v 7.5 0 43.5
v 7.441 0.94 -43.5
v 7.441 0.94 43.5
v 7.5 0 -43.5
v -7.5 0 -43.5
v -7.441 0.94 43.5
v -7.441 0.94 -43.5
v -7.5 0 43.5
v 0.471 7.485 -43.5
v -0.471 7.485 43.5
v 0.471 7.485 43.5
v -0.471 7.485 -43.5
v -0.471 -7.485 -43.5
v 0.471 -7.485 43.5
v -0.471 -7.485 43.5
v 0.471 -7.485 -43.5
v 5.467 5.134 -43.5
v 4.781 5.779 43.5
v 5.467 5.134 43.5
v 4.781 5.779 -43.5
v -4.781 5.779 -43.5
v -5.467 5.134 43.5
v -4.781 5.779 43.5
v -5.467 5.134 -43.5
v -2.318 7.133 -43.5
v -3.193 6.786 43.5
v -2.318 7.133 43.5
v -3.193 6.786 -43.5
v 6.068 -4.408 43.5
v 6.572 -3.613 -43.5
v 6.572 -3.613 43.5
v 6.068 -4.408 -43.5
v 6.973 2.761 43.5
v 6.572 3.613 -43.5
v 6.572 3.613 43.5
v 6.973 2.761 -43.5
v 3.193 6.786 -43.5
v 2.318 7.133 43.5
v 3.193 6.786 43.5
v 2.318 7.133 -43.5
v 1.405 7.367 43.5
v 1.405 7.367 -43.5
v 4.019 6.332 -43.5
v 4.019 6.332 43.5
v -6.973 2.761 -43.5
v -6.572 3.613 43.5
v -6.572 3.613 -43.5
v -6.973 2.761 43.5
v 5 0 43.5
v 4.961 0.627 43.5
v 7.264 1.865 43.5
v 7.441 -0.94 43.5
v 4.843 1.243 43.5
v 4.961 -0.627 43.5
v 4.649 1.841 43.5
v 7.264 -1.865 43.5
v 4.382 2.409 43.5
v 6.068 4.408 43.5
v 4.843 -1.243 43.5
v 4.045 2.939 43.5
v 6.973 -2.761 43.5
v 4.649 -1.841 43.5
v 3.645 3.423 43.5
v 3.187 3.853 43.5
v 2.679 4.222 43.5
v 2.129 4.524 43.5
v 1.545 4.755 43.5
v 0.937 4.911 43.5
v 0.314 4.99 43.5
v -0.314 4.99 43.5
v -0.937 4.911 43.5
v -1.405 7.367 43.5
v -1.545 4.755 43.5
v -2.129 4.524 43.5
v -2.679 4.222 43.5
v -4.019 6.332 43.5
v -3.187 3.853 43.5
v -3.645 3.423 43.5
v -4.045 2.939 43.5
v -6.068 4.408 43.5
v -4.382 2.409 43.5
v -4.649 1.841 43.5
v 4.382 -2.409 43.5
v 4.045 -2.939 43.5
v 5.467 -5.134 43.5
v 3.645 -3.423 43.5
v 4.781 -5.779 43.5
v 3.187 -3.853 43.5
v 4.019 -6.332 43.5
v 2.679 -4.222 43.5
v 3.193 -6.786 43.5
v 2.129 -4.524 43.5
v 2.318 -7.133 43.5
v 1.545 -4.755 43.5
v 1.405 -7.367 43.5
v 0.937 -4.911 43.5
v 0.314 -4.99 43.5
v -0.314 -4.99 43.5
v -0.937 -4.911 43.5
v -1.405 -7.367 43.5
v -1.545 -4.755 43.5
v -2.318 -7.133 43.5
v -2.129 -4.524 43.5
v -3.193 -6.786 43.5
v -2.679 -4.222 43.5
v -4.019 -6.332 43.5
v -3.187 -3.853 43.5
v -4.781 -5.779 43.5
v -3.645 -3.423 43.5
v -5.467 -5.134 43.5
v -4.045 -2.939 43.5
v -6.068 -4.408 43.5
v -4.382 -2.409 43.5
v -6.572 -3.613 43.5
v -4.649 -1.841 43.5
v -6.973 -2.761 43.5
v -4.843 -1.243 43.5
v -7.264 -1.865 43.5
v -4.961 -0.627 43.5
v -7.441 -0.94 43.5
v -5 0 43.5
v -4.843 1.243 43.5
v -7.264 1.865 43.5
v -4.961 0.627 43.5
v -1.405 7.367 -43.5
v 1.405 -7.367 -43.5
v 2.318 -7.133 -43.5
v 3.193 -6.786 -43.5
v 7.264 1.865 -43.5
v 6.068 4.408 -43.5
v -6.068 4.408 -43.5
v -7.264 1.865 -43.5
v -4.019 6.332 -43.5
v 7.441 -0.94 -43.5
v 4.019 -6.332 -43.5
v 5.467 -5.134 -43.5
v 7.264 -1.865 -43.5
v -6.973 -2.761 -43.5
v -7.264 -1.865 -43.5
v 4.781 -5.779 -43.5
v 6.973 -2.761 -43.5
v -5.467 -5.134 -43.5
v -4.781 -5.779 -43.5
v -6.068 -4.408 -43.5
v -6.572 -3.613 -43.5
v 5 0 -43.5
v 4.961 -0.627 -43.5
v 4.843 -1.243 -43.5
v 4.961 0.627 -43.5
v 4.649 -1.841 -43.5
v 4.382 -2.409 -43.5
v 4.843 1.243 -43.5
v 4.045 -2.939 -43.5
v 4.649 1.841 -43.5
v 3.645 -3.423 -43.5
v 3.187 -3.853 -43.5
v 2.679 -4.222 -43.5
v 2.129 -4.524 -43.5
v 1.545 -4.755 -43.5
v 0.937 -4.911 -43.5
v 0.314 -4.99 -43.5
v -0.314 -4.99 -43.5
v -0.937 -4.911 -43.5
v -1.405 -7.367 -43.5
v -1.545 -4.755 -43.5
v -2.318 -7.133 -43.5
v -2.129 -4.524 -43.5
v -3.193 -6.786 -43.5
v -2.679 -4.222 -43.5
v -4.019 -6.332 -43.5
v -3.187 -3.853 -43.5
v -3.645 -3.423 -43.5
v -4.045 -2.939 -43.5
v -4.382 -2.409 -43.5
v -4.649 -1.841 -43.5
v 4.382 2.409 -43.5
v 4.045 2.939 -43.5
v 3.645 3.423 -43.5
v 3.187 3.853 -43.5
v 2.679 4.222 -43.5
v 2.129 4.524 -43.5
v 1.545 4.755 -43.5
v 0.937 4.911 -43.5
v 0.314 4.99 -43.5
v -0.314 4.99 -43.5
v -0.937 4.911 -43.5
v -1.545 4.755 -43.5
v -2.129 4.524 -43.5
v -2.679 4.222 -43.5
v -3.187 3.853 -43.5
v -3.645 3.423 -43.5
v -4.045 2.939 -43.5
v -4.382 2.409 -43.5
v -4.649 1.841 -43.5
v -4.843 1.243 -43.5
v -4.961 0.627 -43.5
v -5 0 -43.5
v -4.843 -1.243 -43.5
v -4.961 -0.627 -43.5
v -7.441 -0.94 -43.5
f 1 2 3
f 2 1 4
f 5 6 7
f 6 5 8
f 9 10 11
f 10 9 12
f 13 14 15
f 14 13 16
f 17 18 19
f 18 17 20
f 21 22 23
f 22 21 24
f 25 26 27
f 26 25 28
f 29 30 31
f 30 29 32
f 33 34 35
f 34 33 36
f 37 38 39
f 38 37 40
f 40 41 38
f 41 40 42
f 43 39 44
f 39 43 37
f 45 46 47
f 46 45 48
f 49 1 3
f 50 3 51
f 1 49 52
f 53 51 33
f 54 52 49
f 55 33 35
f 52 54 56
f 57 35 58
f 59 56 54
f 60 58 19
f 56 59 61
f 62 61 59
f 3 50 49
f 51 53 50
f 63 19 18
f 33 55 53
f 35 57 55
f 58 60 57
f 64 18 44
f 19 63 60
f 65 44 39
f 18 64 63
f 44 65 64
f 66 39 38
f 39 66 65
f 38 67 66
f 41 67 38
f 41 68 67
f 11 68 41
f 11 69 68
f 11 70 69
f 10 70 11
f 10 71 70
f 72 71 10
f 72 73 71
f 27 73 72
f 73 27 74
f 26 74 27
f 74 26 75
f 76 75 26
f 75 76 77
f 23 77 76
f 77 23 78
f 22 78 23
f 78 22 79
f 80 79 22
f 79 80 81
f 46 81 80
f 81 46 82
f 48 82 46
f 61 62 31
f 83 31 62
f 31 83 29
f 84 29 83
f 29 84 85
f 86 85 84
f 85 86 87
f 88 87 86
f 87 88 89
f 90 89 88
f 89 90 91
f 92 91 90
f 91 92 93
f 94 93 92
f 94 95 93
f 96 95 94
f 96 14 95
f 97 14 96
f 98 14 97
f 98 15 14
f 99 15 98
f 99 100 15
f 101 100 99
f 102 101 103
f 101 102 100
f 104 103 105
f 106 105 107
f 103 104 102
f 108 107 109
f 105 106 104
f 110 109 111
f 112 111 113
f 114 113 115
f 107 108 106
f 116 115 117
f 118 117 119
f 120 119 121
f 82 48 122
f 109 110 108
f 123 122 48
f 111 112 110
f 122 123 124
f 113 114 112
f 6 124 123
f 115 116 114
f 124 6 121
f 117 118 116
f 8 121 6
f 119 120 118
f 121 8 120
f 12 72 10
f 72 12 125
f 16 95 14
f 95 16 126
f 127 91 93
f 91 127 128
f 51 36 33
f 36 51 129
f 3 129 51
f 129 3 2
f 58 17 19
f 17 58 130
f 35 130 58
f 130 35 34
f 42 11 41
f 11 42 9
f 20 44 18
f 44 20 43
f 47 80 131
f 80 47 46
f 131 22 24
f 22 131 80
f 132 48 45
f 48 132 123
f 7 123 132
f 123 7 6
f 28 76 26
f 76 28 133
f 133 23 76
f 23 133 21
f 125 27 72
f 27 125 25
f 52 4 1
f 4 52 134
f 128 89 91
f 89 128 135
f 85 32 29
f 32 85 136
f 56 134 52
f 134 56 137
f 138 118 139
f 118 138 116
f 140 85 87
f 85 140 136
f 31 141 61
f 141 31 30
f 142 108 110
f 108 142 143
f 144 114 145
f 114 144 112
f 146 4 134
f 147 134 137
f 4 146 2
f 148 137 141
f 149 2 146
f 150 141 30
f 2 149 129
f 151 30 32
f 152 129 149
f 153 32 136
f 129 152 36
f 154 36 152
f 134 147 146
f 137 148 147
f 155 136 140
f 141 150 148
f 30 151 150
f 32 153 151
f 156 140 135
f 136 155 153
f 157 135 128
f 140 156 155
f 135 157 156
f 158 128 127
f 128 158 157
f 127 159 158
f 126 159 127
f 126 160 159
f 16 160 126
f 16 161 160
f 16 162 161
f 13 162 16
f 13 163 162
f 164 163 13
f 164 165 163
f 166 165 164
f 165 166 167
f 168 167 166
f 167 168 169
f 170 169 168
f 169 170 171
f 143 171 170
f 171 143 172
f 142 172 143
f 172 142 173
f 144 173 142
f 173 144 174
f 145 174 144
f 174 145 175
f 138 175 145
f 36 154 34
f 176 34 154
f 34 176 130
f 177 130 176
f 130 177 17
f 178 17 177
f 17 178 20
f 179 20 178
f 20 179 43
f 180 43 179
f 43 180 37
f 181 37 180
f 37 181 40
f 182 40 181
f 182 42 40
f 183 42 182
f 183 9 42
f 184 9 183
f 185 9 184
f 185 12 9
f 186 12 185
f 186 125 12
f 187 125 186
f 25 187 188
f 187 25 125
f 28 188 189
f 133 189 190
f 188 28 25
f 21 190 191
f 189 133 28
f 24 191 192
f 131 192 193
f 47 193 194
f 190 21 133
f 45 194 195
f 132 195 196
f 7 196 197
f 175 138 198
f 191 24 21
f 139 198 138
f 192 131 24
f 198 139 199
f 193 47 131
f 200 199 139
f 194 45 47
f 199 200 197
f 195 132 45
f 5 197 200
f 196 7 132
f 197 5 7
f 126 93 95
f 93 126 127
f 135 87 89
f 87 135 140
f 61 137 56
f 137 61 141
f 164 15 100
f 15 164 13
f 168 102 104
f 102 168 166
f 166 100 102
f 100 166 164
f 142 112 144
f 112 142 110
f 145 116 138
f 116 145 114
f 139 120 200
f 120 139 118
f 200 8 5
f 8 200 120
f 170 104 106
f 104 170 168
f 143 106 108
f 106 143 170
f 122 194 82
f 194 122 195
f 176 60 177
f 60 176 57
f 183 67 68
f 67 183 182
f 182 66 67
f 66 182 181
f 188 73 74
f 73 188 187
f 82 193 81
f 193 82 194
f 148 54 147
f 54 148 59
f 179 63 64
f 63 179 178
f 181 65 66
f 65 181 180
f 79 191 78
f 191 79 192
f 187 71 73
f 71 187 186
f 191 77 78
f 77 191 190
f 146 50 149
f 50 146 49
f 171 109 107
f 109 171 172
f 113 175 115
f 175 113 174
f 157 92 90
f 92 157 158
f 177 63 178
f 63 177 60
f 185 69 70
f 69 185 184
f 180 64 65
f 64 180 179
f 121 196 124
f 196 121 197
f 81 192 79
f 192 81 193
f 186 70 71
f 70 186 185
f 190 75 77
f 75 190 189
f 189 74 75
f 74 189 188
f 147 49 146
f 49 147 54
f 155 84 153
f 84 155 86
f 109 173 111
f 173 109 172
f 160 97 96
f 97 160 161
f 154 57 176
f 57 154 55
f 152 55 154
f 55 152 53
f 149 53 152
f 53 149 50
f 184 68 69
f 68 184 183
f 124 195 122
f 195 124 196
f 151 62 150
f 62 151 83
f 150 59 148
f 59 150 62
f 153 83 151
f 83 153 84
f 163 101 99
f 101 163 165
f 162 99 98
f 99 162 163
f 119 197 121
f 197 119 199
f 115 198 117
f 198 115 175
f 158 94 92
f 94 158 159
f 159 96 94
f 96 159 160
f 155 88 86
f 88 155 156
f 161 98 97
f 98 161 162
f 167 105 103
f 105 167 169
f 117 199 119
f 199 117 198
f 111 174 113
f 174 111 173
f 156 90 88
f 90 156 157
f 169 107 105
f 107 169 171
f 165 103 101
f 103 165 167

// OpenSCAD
$fn = 50;


difference() {
	union() {
		translate(v = [0, 0, -43.5000000000]) {
			cylinder(h = 87, r = 7.5000000000);
		}
	}
	union() {
		translate(v = [0, 0, -100.0000000000]) {
			cylinder(h = 200, r = 5);
		}
	}
}
